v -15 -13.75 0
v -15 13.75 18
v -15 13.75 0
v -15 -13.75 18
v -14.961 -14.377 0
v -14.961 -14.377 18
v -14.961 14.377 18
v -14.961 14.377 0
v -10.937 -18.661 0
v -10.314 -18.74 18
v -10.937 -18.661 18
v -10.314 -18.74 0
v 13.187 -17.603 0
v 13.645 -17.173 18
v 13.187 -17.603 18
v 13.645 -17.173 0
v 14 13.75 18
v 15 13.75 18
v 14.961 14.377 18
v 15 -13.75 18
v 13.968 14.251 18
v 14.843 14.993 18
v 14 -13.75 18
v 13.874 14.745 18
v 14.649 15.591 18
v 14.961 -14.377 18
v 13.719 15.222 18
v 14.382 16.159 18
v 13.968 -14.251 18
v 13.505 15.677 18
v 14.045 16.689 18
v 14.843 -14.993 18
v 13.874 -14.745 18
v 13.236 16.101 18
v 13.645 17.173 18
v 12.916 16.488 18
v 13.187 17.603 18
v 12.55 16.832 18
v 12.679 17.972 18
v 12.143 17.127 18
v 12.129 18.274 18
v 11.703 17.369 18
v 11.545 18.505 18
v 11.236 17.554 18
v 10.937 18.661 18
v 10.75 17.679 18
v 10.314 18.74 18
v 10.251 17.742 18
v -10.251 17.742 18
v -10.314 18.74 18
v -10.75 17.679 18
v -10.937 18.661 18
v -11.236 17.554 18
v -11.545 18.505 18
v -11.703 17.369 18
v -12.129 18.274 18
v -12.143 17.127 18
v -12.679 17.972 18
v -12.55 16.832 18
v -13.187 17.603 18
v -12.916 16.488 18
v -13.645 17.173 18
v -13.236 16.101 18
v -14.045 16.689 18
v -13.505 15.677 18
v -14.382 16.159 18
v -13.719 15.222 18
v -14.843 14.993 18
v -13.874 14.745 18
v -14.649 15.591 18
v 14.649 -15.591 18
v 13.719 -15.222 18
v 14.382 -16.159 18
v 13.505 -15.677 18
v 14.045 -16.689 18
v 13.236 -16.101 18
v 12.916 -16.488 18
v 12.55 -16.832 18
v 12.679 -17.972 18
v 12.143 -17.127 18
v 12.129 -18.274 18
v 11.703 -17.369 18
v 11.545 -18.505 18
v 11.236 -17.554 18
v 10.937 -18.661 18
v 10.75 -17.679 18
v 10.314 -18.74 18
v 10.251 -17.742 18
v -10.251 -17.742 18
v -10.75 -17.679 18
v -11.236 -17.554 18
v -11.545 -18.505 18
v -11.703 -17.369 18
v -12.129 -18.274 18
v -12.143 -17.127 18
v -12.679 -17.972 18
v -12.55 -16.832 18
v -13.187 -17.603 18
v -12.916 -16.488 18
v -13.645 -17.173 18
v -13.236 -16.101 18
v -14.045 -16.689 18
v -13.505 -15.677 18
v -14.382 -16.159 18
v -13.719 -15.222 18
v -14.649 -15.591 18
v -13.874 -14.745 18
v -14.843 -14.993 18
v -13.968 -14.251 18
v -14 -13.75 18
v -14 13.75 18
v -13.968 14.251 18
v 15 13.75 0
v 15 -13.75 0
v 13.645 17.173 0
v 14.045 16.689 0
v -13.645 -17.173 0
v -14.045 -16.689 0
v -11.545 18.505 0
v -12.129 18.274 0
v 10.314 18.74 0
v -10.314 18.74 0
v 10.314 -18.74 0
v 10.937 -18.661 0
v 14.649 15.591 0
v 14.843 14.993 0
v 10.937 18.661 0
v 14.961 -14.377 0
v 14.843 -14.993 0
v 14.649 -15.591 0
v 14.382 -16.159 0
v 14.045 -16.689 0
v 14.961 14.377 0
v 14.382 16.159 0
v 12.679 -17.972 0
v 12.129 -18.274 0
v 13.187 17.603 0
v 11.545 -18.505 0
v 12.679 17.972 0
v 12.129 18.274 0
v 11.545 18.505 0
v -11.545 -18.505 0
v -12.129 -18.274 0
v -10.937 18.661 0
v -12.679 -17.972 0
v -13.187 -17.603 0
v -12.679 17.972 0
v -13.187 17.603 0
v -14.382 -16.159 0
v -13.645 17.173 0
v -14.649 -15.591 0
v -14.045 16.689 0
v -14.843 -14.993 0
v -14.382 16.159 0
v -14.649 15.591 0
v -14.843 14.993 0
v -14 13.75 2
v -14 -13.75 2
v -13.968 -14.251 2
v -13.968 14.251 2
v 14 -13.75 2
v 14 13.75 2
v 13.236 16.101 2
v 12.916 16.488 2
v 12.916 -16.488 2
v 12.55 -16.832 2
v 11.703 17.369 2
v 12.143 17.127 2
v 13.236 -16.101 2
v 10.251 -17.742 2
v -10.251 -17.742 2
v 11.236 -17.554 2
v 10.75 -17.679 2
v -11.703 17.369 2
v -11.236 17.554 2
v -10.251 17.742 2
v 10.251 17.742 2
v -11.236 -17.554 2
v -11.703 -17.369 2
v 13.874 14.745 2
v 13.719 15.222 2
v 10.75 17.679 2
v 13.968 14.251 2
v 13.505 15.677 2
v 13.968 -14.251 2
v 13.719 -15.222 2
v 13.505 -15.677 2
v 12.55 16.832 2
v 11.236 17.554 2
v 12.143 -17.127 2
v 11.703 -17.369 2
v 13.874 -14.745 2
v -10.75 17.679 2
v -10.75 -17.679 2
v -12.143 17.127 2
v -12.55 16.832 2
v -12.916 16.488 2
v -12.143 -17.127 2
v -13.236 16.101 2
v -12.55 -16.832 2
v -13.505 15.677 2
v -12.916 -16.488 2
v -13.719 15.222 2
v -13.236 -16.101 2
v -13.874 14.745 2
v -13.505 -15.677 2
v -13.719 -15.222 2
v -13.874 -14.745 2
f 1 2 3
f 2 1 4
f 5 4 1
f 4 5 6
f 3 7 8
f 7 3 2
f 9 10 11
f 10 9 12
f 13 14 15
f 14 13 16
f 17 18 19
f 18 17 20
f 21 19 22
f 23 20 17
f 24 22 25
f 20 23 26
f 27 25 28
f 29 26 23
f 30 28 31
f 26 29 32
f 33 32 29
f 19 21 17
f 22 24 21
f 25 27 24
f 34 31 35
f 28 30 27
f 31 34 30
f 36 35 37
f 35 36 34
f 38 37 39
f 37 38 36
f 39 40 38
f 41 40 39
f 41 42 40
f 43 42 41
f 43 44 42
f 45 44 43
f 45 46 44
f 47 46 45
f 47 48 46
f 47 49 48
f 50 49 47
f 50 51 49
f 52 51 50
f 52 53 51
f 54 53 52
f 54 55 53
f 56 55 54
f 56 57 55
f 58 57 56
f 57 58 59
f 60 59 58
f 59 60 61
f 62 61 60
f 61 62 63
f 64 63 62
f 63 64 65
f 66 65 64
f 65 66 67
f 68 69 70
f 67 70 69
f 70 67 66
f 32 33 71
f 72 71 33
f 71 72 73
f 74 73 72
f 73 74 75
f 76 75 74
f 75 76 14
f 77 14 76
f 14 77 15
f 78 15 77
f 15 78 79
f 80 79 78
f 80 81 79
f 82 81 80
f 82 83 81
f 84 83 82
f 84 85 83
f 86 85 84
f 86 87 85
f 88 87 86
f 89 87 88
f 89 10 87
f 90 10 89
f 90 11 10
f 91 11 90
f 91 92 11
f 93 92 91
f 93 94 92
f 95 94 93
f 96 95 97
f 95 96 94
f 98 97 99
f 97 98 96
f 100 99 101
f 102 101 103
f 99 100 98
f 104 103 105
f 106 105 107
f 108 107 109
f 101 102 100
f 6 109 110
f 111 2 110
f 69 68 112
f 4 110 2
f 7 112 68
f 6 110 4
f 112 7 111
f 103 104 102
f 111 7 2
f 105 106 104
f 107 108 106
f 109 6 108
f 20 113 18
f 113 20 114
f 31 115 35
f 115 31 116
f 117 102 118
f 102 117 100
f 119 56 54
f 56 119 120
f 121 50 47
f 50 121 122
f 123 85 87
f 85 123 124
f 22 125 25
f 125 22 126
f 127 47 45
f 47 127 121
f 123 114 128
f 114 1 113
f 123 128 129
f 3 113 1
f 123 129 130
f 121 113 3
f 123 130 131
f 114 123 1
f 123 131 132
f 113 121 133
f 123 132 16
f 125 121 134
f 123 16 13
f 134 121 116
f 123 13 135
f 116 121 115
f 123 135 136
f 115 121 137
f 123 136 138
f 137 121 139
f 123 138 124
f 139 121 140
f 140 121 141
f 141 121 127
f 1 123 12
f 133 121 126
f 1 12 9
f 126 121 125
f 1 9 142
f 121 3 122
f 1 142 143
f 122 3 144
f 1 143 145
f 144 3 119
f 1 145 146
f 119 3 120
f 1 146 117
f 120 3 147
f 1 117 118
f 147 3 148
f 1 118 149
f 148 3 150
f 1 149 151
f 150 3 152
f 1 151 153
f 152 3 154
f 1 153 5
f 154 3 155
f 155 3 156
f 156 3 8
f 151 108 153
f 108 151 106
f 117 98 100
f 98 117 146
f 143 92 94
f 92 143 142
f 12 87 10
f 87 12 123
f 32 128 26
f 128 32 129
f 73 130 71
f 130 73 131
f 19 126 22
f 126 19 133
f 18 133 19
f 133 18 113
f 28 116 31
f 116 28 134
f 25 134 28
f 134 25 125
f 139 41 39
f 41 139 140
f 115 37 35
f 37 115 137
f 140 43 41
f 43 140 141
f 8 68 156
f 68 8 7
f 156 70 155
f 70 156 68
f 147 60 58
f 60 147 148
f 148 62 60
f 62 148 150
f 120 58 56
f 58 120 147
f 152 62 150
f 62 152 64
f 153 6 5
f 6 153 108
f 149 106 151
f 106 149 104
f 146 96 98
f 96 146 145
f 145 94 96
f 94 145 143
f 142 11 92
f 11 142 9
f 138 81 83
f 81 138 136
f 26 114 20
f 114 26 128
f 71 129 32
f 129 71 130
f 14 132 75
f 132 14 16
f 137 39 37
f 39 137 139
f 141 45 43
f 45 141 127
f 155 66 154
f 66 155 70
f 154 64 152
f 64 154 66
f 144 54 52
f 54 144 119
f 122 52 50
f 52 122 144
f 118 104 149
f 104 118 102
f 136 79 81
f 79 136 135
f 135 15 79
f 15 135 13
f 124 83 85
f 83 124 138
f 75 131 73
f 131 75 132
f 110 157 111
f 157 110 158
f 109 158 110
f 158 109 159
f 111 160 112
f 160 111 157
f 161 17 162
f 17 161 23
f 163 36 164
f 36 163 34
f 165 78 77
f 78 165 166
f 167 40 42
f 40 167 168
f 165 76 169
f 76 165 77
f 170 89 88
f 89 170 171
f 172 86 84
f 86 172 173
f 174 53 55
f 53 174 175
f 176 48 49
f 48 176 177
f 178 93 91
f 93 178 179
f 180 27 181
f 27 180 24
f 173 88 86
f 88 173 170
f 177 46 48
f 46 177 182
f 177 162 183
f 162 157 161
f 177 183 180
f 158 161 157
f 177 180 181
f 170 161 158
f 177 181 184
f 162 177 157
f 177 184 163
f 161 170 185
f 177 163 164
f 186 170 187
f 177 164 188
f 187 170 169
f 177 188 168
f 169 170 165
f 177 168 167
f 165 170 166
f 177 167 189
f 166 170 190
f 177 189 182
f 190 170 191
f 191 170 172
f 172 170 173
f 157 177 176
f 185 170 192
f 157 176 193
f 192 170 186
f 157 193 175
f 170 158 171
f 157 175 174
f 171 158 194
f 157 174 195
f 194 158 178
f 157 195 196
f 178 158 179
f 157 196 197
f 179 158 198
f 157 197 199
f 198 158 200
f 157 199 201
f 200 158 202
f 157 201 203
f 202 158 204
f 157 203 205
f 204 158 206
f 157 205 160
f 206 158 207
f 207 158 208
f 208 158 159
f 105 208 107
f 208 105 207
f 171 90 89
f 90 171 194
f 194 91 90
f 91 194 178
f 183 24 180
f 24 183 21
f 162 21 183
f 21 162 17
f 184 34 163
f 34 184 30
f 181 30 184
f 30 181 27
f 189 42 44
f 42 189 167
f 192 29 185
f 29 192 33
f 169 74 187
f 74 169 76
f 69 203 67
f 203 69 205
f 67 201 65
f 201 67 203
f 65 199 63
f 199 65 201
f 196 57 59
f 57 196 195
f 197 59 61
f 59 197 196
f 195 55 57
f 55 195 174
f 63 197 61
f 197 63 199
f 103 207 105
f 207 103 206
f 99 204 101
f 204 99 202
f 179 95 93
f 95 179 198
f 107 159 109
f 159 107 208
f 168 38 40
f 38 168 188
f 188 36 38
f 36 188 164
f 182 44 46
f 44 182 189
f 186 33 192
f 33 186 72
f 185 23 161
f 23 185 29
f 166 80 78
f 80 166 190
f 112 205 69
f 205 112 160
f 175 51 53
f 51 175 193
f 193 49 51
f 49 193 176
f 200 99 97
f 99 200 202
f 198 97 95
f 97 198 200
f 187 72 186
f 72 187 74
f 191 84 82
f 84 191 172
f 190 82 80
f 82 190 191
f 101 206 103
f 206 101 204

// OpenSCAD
$fn = 50;


difference() {
	union() {
		hull() {
			translate(v = [-10.0000000000, 13.7500000000, 0]) {
				cylinder(h = 18, r = 5);
			}
			translate(v = [10.0000000000, 13.7500000000, 0]) {
				cylinder(h = 18, r = 5);
			}
			translate(v = [-10.0000000000, -13.7500000000, 0]) {
				cylinder(h = 18, r = 5);
			}
			translate(v = [10.0000000000, -13.7500000000, 0]) {
				cylinder(h = 18, r = 5);
			}
		}
	}
	union() {
		translate(v = [0, 0, 2]) {
			hull() {
				translate(v = [-10.0000000000, 13.7500000000, 0]) {
					cylinder(h = 16, r = 4);
				}
				translate(v = [10.0000000000, 13.7500000000, 0]) {
					cylinder(h = 16, r = 4);
				}
				translate(v = [-10.0000000000, -13.7500000000, 0]) {
					cylinder(h = 16, r = 4);
				}
				translate(v = [10.0000000000, -13.7500000000, 0]) {
					cylinder(h = 16, r = 4);
				}
			}
		}
	}
}
